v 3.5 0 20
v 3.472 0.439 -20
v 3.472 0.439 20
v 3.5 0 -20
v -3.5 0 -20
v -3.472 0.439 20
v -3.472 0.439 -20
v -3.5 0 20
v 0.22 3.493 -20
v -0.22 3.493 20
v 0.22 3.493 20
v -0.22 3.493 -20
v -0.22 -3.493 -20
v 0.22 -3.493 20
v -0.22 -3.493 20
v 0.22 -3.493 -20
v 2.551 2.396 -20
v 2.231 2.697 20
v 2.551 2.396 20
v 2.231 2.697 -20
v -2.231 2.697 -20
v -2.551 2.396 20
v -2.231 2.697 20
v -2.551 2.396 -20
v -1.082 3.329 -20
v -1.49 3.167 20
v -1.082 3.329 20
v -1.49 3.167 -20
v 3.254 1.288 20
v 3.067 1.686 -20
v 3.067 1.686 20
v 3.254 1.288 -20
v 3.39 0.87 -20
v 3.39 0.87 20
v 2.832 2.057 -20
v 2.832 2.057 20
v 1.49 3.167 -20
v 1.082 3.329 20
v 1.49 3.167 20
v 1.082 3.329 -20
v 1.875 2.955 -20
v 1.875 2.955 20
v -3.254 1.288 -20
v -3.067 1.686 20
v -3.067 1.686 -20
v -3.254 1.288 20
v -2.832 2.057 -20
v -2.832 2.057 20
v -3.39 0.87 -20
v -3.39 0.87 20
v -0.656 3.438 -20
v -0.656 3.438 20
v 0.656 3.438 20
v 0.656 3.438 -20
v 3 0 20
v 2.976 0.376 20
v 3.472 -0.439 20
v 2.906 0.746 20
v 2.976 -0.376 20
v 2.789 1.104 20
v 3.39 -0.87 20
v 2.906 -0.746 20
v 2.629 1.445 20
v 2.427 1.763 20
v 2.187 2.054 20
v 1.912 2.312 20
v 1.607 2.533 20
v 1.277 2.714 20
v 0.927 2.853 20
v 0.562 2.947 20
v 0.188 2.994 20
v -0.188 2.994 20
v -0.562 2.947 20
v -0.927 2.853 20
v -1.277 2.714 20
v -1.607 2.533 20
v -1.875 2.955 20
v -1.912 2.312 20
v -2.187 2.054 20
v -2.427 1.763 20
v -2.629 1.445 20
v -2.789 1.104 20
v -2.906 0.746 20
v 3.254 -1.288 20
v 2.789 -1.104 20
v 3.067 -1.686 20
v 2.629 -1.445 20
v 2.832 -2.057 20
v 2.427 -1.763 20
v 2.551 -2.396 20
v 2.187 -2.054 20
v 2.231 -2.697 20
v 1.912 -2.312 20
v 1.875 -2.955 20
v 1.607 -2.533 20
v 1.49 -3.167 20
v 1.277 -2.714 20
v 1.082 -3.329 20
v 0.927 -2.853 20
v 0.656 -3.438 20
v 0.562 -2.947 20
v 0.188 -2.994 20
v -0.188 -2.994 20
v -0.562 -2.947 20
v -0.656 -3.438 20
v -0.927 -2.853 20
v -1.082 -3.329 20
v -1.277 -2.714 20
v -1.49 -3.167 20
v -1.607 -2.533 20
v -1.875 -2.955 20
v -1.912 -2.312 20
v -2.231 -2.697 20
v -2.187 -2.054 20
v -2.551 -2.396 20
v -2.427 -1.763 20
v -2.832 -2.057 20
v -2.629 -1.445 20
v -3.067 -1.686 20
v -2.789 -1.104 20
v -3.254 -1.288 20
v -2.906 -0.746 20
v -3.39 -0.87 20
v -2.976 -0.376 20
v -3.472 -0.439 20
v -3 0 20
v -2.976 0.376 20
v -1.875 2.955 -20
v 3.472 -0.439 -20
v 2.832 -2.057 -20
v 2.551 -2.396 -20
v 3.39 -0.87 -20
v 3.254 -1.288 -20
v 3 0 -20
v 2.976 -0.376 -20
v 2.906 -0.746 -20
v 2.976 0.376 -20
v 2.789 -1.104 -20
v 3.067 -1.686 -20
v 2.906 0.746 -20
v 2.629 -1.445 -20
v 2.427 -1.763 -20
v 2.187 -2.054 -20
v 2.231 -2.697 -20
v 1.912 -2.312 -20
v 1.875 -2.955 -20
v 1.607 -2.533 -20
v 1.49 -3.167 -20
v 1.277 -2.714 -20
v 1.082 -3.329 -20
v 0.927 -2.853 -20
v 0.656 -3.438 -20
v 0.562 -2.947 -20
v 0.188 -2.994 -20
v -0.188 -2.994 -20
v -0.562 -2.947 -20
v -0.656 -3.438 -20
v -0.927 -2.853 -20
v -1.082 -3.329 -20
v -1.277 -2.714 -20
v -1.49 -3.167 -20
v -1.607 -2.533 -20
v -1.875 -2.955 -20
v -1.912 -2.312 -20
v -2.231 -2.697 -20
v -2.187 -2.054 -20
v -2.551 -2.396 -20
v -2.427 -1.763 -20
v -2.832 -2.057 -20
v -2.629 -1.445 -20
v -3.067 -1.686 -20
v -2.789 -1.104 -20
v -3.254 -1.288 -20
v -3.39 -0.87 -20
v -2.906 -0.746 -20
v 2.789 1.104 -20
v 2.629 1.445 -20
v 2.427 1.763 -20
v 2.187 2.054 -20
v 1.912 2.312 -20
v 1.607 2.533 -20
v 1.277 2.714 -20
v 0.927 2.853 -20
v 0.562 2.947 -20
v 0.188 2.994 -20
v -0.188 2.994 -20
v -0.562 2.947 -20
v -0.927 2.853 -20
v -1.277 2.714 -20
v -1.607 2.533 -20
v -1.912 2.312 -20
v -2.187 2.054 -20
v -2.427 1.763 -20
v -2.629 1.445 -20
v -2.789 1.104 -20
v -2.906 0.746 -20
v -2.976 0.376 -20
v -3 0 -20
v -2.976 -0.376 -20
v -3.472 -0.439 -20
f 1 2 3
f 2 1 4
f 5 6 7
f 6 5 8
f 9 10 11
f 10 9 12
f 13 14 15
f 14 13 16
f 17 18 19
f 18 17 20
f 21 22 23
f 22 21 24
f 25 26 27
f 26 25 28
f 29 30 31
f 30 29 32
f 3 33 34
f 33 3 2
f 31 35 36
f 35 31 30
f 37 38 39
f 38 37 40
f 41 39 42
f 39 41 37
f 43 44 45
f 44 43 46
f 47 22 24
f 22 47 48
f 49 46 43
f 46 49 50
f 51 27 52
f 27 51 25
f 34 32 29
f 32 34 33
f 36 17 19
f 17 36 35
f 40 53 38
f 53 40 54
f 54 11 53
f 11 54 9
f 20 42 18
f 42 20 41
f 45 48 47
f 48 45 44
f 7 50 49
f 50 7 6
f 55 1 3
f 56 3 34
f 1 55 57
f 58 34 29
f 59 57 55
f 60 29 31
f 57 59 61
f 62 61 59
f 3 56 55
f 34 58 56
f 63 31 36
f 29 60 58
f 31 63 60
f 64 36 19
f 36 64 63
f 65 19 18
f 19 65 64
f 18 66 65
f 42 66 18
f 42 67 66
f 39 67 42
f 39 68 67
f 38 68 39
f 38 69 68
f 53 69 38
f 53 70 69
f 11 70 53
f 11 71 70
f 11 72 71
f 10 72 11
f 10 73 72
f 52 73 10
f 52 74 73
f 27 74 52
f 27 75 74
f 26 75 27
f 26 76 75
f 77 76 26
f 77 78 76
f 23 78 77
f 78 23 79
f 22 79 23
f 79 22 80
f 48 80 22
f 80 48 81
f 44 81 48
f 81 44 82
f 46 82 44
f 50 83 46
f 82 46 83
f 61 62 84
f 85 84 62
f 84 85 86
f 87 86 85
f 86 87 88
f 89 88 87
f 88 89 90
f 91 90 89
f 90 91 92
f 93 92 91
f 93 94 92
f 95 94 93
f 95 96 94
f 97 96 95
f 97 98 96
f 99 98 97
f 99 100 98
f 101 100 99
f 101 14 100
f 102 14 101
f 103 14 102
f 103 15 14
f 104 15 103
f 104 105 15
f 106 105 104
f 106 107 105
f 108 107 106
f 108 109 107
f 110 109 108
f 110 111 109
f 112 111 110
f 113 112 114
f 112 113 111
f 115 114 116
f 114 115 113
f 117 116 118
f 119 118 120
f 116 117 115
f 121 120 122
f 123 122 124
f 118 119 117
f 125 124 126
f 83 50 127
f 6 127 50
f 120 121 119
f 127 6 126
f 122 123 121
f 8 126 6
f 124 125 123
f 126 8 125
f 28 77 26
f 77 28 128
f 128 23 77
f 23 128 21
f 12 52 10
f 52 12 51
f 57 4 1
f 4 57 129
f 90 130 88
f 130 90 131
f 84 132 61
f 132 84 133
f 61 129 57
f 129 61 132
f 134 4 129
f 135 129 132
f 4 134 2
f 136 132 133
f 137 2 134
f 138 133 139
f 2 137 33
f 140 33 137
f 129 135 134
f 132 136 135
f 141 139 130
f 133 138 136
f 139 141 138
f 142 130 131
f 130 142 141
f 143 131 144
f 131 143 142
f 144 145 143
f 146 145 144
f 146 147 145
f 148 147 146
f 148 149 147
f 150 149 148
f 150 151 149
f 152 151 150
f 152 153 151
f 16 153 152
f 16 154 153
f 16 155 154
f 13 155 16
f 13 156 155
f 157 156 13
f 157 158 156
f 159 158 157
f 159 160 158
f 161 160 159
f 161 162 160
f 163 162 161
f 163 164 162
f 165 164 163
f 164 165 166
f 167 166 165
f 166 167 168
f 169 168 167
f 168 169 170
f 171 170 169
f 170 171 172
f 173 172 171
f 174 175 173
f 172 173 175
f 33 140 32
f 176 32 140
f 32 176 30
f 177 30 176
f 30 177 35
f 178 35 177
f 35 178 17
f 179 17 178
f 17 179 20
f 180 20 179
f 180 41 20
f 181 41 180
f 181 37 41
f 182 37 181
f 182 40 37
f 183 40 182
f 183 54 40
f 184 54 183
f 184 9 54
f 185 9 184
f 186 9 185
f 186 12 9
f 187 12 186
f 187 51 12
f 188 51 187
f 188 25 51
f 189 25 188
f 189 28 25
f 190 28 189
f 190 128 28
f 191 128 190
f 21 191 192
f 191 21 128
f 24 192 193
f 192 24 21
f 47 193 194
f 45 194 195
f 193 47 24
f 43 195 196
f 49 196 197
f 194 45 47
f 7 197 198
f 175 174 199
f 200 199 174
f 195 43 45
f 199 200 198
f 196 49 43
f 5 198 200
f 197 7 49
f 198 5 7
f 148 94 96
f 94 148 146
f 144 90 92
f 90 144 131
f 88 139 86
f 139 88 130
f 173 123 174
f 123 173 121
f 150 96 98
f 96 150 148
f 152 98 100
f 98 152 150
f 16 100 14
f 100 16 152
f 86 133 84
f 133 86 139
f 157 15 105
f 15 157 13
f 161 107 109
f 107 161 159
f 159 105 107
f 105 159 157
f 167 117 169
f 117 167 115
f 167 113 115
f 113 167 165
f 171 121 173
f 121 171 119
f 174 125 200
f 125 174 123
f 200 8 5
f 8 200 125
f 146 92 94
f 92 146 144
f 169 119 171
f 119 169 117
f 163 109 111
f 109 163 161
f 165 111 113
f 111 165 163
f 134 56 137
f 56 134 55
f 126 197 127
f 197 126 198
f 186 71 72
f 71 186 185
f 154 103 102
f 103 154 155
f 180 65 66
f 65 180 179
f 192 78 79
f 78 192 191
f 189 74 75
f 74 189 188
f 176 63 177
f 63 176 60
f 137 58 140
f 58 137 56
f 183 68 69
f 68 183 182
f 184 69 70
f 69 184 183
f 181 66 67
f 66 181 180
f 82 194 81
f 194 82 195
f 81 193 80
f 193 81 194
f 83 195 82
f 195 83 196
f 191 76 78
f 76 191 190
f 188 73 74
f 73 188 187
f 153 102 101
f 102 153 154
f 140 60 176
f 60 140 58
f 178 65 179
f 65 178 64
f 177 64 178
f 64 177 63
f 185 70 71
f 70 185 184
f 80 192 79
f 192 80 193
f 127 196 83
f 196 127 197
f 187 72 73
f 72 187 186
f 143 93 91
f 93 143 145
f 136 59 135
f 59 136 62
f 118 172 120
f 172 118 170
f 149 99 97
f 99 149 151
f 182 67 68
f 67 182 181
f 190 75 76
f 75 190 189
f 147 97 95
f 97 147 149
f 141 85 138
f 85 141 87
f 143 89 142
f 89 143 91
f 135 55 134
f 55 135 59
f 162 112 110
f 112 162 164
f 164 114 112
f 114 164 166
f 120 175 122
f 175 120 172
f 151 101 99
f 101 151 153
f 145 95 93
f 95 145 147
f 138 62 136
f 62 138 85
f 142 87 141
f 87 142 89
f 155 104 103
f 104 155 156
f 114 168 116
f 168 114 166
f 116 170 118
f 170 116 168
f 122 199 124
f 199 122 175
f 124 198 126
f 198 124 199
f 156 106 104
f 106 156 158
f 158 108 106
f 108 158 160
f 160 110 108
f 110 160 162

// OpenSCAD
$fn = 50;


difference() {
	union() {
		translate(v = [0, 0, -20.0000000000]) {
			cylinder(h = 40, r = 3.5000000000);
		}
	}
	union() {
		translate(v = [0, 0, -100.0000000000]) {
			cylinder(h = 200, r = 3);
		}
	}
}
